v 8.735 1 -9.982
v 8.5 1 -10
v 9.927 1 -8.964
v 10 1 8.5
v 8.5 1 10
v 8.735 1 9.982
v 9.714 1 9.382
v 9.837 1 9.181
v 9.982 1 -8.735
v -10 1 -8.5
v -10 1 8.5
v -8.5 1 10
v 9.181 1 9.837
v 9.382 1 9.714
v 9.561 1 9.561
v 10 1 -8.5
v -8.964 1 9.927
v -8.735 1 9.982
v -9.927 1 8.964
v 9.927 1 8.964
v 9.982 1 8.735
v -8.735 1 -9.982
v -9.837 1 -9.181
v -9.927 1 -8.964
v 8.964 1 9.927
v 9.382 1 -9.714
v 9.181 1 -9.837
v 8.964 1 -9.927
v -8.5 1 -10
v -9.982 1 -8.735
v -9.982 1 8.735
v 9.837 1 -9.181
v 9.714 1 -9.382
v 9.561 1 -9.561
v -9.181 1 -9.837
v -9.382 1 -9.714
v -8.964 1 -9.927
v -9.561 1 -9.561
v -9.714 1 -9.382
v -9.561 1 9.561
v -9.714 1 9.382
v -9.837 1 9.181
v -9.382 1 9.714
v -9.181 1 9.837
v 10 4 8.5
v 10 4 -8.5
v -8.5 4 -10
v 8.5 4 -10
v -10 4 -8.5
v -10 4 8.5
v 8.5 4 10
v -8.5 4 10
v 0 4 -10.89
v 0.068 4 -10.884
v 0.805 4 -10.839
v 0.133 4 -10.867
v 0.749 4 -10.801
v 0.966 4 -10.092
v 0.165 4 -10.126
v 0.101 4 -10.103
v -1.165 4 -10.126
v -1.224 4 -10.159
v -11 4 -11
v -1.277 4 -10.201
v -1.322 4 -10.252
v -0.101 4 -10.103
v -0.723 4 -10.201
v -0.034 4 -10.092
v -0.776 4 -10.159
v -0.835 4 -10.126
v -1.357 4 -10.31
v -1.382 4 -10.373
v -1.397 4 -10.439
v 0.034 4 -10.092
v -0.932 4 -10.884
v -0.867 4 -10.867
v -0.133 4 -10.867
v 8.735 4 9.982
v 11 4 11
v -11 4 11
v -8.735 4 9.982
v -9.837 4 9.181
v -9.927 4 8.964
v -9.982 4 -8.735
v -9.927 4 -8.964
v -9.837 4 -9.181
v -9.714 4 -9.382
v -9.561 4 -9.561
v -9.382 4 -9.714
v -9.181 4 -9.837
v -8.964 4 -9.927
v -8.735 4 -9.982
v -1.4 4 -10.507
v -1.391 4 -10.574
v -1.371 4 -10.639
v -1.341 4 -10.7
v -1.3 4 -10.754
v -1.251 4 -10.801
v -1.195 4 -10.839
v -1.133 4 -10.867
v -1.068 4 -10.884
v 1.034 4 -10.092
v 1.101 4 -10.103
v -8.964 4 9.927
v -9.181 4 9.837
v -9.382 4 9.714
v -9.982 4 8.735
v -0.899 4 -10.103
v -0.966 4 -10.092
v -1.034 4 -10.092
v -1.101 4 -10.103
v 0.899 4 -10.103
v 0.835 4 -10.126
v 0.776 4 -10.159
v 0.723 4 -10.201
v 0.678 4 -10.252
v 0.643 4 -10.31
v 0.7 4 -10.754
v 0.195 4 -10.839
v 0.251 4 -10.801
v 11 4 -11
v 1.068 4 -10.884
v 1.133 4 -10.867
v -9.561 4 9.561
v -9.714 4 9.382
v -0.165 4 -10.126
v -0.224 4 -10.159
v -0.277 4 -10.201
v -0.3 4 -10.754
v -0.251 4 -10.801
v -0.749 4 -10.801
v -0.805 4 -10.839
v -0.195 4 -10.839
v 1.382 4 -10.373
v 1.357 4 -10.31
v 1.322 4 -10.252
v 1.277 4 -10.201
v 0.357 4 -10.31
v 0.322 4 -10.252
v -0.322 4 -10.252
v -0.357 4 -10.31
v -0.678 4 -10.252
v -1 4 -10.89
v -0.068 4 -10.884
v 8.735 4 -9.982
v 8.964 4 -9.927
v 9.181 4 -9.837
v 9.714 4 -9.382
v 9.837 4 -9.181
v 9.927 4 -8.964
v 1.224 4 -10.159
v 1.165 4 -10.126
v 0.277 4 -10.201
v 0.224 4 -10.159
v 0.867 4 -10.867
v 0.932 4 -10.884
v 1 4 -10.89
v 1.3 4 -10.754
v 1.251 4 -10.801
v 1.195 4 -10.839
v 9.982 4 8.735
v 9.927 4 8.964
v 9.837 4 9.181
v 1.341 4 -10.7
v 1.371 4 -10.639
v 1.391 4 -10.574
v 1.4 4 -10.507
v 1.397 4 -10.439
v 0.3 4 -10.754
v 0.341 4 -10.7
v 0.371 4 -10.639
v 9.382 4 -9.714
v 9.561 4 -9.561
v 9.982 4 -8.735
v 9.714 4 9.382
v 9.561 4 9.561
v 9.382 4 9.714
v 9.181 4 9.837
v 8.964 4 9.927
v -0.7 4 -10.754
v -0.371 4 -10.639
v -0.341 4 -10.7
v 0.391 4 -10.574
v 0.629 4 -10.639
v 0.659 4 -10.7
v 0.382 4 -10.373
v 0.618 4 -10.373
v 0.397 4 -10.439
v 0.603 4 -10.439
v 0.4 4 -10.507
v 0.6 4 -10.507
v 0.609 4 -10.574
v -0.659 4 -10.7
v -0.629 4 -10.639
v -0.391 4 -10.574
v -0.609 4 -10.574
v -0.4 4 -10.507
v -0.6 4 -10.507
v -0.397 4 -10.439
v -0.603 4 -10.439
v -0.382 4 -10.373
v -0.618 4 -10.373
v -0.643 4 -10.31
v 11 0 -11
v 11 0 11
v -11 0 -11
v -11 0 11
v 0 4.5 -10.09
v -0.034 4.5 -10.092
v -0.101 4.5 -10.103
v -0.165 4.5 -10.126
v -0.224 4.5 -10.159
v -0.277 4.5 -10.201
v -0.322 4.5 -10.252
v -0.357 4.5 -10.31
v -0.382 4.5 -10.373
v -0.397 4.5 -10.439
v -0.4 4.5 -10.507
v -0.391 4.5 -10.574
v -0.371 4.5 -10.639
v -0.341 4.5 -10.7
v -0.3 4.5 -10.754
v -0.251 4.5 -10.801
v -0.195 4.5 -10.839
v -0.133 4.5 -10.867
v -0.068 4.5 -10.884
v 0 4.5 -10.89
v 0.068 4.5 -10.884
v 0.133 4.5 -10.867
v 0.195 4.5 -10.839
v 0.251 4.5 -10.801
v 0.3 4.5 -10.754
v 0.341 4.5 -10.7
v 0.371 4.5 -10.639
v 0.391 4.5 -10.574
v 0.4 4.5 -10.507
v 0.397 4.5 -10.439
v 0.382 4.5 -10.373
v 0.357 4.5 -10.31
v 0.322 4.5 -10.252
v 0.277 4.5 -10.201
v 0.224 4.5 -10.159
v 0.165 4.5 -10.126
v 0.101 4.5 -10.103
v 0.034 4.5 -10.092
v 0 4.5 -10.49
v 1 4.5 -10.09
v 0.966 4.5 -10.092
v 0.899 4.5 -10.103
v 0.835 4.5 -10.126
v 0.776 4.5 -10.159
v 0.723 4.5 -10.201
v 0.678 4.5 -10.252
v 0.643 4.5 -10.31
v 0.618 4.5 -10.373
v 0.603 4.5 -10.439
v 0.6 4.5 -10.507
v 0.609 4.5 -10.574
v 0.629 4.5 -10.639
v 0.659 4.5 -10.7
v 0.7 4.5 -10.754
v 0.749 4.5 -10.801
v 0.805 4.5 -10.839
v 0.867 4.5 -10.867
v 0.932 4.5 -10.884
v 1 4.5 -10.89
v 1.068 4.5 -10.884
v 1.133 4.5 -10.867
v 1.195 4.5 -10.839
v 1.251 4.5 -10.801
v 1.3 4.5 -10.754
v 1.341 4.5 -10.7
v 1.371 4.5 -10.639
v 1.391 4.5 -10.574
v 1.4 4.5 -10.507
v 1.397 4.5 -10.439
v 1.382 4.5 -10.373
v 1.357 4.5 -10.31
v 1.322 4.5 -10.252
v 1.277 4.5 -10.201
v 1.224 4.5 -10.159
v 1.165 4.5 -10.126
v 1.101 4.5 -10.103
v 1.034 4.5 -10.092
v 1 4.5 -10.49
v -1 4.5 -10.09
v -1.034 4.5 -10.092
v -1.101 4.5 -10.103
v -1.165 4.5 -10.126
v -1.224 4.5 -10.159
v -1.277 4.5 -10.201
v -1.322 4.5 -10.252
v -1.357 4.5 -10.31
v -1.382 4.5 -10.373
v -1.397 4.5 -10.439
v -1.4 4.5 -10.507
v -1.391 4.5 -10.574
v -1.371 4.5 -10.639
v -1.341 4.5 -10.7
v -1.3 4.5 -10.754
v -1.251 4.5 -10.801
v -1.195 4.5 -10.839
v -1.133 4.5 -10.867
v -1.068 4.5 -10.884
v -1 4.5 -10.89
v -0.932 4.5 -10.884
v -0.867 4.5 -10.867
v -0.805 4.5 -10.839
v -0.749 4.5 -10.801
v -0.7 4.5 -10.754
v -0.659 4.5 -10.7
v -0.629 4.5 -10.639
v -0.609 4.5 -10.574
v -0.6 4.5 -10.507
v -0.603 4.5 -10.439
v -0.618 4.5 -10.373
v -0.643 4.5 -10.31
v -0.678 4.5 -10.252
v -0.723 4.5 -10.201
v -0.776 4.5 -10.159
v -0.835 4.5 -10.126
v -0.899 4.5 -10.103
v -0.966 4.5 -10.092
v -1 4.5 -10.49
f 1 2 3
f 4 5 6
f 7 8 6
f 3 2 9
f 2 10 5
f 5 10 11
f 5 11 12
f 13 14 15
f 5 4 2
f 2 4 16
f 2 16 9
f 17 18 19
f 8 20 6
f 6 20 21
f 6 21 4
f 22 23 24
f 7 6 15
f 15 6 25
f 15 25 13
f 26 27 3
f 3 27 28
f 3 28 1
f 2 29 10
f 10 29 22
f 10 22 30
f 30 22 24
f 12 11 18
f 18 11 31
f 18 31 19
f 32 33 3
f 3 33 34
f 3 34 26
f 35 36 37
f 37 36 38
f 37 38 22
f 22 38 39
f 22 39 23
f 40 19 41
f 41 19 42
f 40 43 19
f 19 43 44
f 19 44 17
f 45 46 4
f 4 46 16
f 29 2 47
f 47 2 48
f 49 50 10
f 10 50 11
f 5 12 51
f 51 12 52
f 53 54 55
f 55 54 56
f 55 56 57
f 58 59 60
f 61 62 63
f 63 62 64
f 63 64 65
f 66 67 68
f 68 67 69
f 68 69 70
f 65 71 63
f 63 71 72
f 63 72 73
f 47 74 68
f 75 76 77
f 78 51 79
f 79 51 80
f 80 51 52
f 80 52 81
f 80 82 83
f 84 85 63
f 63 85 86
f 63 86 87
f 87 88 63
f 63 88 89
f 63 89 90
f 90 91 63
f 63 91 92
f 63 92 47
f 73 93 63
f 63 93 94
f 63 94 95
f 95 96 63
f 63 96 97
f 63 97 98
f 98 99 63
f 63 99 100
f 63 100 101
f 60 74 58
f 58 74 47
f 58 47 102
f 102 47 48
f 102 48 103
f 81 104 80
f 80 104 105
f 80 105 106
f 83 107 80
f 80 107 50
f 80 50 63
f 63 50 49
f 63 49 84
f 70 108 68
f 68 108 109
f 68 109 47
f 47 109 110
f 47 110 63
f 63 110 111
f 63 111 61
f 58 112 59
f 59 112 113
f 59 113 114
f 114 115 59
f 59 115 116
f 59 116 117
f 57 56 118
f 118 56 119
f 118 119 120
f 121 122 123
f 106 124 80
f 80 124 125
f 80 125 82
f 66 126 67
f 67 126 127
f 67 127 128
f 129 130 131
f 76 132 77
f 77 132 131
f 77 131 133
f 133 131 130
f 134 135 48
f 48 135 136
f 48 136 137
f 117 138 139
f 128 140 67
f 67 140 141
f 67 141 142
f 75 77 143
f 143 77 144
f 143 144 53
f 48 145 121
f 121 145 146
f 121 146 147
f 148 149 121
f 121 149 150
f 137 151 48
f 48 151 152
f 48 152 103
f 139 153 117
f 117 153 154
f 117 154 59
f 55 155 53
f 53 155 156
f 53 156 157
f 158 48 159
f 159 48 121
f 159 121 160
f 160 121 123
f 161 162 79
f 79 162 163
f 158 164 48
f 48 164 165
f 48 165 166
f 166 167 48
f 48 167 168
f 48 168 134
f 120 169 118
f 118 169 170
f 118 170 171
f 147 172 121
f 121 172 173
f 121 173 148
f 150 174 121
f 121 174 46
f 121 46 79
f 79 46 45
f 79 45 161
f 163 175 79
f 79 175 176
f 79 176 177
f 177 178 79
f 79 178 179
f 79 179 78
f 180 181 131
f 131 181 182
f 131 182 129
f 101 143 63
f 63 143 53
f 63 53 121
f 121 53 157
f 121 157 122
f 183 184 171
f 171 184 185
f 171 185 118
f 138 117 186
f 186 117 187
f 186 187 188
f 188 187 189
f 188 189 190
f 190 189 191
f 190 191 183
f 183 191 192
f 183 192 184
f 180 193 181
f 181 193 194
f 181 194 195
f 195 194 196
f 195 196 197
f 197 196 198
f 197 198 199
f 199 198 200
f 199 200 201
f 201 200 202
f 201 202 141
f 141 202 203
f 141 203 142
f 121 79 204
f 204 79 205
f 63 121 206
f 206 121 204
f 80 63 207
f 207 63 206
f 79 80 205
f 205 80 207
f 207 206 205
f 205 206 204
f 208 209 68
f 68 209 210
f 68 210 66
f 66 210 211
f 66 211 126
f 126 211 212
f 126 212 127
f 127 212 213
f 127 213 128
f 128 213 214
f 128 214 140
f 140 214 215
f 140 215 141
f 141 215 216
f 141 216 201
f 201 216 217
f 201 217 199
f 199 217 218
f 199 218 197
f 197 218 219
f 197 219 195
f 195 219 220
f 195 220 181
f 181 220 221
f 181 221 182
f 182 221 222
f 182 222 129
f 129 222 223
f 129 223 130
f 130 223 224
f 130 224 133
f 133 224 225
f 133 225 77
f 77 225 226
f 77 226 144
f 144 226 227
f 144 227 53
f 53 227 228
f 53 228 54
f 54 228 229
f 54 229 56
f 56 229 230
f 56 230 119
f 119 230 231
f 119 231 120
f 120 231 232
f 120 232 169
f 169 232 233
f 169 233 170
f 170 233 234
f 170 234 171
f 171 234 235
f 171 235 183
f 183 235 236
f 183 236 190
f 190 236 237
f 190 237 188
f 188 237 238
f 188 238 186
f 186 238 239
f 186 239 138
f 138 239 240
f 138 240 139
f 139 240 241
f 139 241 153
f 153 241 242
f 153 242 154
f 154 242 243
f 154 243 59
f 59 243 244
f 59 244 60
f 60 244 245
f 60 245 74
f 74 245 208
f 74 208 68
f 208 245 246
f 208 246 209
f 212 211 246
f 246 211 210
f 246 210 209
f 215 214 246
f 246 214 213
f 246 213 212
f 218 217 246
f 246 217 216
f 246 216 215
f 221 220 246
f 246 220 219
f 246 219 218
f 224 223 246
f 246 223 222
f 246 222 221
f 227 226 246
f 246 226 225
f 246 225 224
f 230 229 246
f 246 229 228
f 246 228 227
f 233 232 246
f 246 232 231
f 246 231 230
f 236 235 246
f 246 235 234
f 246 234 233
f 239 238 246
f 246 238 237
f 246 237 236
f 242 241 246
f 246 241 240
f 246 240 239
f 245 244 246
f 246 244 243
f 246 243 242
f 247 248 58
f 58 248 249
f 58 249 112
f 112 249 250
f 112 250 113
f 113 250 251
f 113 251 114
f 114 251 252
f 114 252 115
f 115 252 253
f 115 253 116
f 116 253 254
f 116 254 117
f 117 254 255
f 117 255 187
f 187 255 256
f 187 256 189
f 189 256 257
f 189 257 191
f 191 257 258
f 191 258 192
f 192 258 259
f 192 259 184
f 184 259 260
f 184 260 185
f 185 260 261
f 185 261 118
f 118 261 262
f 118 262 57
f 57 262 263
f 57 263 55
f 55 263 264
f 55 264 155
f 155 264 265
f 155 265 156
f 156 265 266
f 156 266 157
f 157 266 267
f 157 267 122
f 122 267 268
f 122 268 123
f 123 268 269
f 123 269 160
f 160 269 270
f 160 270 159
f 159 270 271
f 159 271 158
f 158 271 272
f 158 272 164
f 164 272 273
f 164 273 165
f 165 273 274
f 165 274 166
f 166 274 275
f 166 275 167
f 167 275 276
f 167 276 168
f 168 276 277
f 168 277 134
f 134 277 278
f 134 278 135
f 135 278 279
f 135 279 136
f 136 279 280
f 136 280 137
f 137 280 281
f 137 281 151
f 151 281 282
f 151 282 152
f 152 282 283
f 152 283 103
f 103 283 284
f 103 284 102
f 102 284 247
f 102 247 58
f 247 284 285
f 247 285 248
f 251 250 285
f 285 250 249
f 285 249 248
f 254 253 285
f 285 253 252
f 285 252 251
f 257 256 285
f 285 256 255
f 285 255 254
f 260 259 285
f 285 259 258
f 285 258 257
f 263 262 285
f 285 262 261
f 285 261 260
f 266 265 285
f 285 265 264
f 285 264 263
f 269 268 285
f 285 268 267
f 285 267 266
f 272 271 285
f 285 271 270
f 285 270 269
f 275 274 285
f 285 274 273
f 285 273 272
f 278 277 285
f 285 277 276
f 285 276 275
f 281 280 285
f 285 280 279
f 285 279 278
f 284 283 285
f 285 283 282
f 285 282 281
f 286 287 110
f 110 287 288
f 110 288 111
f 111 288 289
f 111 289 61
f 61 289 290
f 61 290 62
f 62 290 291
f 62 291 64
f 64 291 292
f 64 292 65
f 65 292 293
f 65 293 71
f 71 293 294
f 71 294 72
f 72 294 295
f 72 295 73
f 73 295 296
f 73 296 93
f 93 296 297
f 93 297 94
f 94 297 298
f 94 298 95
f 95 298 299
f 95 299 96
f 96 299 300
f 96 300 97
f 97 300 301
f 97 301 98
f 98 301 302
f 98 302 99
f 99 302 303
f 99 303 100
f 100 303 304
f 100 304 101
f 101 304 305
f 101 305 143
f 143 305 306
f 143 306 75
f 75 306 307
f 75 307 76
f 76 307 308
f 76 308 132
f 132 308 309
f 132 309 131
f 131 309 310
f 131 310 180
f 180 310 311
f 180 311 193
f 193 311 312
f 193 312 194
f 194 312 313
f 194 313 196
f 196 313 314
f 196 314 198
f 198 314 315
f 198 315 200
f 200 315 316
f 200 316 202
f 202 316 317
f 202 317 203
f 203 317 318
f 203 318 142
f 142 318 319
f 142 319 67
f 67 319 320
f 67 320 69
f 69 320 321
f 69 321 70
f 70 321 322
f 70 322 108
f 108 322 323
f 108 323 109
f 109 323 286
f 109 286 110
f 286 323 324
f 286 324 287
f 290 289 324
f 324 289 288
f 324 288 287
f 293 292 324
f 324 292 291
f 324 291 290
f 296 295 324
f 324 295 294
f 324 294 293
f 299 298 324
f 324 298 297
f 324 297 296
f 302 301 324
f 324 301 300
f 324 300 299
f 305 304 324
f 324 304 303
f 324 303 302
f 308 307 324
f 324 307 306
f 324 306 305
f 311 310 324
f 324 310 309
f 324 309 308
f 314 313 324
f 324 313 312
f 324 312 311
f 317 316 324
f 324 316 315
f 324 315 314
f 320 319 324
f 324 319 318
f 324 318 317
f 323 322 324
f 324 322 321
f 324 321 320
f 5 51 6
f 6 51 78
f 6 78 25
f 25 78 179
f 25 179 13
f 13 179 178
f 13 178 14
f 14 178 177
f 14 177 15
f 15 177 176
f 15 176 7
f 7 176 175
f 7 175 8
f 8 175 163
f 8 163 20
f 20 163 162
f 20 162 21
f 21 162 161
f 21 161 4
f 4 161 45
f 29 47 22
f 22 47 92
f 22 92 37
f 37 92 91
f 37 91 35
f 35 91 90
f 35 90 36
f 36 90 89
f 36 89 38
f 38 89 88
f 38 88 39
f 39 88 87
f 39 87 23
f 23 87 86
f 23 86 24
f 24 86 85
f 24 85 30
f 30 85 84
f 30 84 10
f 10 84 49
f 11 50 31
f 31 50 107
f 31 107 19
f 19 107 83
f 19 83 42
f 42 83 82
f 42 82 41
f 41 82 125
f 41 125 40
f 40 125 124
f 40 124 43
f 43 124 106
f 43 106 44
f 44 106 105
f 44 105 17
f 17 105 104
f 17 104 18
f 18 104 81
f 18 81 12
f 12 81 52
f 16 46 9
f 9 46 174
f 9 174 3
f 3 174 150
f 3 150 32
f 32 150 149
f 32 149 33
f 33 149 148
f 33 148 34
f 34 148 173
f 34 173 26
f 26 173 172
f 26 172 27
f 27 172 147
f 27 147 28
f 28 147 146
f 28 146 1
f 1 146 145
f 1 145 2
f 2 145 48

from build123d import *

# Parameters (mm, degrees)
SKETCH1_W           = 20
SKETCH1_H           = 20
BOSS_EXTRUDE2_DEPTH = 1
SKETCH1_6_W         = 22
SKETCH1_6_H         = 22
SKETCH1_6_W_2       = 20
SKETCH1_6_H_2       = 20
BOSS_EXTRUDE3_DEPTH = 4
SKETCH2_R           = 0.4
BOSS_EXTRUDE4_DEPTH = 0.5
FILLET1_R           = 1.5


with BuildPart() as part:
    # Sketch1 → Boss-Extrude2 (new body)
    with BuildSketch(Plane(origin=(0, 0, 0), x_dir=(1, 0, 0), z_dir=(0, 1, 0))):
        Rectangle(SKETCH1_W, SKETCH1_H)
    extrude(amount=BOSS_EXTRUDE2_DEPTH)

    # Sketch1<6> → Boss-Extrude3 (add)
    with BuildSketch(Plane(origin=(0, 0, 0), x_dir=(1, 0, 0), z_dir=(0, 1, 0))):
        Rectangle(SKETCH1_6_W, SKETCH1_6_H)
        Rectangle(SKETCH1_6_W_2, SKETCH1_6_H_2, mode=Mode.SUBTRACT)
    extrude(amount=BOSS_EXTRUDE3_DEPTH)

    # Sketch2 → Boss-Extrude4 (add)
    with BuildSketch(Plane(origin=(0, 4, 0), x_dir=(1, 0, 0), z_dir=(0, 1, 0))):
        with Locations((0, 10.490155688)):
            Circle(SKETCH2_R)
        with Locations((1, 10.490155688)):
            Circle(SKETCH2_R)
        with Locations((-1, 10.490155688)):
            Circle(SKETCH2_R)
    extrude(amount=BOSS_EXTRUDE4_DEPTH)

    # Fillet1
    fillet1_edges = [part.edges().sort_by_distance(p)[0] for p in [
        (10, 2.5, -10),
        (-10, 2.5, -10),
        (-10, 2.5, 10),
        (10, 2.5, 10),
    ]]
    fillet(fillet1_edges, radius=FILLET1_R)


solid = part.part
